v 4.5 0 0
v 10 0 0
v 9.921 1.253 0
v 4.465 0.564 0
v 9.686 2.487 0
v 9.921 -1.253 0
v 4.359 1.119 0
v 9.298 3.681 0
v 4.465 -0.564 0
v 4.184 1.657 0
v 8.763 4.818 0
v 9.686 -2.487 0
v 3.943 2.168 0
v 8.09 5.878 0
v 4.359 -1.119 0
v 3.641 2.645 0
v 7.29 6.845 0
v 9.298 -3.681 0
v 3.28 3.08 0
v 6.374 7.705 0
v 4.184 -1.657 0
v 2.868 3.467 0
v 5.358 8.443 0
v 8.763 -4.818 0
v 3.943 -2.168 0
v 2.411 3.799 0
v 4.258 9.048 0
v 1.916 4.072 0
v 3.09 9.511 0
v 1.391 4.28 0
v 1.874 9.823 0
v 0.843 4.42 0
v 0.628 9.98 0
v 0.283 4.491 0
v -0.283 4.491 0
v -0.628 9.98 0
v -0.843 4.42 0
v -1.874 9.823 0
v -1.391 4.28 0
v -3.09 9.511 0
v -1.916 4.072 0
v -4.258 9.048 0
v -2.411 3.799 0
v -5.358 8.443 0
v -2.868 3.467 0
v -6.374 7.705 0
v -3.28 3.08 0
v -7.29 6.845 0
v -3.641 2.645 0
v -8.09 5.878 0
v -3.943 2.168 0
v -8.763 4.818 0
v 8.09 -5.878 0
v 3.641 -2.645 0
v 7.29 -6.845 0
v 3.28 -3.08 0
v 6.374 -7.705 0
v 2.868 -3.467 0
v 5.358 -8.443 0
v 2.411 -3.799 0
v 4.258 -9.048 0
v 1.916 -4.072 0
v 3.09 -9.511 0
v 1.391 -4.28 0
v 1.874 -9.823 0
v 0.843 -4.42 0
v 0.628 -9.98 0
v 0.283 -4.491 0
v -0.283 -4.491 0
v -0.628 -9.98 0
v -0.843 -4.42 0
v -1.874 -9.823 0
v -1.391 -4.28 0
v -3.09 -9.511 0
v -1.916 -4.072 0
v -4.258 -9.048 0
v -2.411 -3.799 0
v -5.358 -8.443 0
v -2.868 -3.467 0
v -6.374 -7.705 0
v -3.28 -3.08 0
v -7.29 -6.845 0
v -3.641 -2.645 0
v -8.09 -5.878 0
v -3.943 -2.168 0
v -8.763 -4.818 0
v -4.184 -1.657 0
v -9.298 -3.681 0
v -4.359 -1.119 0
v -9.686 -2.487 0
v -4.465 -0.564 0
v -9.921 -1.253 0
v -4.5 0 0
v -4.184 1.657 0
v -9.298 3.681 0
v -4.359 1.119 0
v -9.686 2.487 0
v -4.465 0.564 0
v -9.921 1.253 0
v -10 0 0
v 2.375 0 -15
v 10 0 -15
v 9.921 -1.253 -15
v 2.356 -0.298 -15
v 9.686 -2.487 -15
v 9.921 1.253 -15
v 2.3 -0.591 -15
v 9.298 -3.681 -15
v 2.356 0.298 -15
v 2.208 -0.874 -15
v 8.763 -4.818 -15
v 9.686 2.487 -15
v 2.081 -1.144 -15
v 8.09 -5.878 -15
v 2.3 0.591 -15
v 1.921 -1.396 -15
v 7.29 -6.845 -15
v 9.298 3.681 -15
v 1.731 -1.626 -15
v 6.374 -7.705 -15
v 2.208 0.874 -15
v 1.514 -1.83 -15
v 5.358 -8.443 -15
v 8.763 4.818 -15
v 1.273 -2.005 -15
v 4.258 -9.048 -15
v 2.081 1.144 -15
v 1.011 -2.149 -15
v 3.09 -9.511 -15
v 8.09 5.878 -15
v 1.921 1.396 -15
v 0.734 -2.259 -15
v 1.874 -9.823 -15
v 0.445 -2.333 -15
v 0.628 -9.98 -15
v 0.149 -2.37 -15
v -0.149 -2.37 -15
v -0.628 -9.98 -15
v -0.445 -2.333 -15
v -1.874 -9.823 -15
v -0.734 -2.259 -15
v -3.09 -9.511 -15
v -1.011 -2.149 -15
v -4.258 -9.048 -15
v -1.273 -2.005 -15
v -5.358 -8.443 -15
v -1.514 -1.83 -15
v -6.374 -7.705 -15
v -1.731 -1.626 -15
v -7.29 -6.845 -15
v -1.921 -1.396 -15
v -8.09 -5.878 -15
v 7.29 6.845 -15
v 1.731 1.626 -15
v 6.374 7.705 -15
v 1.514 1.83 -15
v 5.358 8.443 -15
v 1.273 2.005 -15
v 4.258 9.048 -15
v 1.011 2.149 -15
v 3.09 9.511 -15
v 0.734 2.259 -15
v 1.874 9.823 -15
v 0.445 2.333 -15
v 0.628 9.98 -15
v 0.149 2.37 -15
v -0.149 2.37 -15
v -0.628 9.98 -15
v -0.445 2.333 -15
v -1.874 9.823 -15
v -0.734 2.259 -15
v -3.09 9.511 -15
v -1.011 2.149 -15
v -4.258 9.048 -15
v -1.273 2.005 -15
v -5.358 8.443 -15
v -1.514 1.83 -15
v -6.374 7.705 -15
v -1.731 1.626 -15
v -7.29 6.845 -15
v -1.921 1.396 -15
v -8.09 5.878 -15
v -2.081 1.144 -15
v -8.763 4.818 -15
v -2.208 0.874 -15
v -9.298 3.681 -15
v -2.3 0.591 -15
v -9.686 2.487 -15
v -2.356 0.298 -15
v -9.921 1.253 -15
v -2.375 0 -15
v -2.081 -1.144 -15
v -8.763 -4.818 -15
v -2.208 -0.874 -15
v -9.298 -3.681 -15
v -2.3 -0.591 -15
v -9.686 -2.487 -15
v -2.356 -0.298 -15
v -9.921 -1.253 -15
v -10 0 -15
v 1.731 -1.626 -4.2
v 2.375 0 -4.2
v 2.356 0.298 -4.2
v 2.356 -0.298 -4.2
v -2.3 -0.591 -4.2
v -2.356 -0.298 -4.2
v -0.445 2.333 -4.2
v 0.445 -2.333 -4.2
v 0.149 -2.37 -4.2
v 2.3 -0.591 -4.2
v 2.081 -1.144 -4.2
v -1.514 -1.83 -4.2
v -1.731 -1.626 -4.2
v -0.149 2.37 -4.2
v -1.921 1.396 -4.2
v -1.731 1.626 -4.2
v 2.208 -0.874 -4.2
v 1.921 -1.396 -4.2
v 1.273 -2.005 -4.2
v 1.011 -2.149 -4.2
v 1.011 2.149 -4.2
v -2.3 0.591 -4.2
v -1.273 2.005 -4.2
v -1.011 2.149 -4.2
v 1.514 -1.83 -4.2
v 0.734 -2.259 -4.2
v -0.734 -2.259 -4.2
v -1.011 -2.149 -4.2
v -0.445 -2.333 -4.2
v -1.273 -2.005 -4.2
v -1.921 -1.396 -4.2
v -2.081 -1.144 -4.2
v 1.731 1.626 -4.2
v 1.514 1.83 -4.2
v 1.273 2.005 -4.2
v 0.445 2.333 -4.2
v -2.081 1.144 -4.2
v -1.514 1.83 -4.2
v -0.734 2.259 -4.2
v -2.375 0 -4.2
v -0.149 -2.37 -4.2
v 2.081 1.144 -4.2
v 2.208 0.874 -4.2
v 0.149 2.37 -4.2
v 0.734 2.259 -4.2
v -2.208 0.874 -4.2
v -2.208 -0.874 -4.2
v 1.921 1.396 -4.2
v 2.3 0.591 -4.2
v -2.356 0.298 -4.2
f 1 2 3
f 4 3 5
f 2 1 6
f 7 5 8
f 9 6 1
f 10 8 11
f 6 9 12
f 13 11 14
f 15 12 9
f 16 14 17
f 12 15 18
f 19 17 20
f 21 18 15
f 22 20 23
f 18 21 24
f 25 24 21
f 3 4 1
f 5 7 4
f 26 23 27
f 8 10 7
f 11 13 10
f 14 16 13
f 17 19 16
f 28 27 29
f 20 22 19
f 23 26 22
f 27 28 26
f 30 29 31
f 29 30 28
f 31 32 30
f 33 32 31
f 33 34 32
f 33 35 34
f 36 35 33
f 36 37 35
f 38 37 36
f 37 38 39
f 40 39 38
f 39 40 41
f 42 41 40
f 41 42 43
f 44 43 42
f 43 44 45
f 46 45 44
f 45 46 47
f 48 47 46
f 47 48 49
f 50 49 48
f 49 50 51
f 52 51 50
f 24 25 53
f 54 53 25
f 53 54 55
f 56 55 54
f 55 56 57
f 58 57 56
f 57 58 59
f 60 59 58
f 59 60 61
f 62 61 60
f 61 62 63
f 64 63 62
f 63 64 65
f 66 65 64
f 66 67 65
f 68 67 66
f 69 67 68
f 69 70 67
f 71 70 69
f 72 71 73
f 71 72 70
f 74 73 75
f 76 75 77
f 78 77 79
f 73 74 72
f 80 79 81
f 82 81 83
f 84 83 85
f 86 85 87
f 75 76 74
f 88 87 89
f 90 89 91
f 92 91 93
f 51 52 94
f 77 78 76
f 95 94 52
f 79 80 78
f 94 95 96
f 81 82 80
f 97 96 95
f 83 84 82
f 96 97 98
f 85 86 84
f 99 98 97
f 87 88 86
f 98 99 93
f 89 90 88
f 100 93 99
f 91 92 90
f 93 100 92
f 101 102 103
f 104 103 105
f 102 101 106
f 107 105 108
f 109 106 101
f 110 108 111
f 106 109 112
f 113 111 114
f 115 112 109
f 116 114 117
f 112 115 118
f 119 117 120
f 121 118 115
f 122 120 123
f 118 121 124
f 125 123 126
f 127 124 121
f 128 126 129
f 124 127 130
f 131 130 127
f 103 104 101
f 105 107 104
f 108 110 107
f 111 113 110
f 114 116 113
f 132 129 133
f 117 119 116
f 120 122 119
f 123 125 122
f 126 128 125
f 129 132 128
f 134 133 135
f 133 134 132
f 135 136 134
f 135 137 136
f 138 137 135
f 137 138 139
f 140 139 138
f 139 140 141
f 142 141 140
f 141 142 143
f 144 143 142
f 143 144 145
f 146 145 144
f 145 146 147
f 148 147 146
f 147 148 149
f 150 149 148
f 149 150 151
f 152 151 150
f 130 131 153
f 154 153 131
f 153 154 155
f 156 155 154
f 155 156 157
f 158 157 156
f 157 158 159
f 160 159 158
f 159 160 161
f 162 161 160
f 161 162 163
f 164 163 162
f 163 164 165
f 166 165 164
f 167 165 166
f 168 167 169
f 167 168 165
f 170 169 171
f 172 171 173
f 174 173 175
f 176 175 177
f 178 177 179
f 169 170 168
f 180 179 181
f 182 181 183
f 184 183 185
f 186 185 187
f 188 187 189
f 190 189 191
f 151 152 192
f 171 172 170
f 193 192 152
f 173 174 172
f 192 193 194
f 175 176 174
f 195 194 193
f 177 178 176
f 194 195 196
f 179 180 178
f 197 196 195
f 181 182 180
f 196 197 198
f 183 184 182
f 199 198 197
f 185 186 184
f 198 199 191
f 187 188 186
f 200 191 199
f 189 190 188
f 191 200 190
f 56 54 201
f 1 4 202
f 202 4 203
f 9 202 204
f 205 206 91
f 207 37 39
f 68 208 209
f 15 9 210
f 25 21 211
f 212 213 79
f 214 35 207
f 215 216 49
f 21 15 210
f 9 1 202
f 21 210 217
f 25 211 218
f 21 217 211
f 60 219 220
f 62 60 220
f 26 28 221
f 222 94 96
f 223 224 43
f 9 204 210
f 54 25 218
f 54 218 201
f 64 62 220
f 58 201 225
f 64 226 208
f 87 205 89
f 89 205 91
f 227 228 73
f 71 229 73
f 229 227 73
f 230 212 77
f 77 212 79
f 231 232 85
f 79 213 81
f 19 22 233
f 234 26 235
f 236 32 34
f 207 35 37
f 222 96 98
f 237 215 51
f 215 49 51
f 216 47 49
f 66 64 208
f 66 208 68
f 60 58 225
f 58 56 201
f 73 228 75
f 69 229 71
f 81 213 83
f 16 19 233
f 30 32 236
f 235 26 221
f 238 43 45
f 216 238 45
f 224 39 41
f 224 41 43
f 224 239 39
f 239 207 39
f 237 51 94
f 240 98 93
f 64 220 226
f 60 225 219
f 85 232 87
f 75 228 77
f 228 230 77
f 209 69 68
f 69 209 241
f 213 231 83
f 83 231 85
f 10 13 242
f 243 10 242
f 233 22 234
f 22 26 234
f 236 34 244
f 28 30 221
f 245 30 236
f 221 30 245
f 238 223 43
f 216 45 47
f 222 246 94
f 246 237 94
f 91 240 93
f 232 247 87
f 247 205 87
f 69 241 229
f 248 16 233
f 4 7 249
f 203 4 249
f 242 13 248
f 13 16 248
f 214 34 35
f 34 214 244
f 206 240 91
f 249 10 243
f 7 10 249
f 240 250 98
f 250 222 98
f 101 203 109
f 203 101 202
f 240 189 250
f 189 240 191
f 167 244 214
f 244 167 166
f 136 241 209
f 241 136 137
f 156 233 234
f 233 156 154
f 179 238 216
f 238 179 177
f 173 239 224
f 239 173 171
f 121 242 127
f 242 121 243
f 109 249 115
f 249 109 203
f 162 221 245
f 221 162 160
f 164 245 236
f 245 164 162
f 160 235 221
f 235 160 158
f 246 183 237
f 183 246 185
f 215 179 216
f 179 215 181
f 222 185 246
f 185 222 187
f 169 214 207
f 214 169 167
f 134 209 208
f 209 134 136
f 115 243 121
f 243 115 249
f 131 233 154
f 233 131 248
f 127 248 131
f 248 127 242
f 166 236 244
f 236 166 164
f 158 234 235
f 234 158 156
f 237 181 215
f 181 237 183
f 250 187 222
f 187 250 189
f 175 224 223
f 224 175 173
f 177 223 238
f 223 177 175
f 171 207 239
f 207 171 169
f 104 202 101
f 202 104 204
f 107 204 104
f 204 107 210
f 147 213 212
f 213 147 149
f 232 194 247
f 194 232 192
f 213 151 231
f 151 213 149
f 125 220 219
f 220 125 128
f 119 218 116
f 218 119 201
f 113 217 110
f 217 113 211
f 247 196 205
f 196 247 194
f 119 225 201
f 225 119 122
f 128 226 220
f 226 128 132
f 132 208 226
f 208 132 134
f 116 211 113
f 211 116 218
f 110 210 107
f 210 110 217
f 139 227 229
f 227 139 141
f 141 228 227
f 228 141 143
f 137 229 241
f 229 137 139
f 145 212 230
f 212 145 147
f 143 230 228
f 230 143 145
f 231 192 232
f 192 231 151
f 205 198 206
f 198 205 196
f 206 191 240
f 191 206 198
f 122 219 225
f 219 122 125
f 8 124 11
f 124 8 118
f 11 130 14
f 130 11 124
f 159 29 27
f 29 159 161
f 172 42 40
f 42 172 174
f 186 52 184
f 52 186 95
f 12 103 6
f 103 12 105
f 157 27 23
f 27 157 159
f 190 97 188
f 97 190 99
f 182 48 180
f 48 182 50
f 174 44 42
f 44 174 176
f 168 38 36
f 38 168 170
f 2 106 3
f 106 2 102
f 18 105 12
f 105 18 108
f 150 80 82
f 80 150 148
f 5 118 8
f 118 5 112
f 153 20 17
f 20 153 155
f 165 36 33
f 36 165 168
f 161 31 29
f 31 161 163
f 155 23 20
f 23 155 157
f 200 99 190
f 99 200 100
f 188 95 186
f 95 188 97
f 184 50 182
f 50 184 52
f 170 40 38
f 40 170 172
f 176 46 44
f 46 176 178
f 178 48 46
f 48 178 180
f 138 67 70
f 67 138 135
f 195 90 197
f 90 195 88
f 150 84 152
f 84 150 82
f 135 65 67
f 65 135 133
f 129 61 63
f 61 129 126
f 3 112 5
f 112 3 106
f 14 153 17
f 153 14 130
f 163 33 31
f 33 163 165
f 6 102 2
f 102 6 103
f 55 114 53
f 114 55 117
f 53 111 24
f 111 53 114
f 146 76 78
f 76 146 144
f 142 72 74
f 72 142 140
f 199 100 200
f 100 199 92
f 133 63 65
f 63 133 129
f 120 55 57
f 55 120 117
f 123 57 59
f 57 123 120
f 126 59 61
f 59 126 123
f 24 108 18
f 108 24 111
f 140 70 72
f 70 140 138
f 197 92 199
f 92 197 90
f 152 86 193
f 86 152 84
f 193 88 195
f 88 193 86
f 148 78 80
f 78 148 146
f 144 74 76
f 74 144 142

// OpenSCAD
$fn = 50;


difference() {
	union() {
		translate(v = [0, 0, -15.0000000000]) {
			cylinder(h = 15, r = 10.0000000000);
		}
		cylinder(h = 0, r = 19.0000000000);
	}
	union() {
		translate(v = [0, 0, 0]) {
			rotate(a = [0, 0, 0]) {
				difference() {
					union() {
						#translate(v = [0, 0, -15.0000000000]) {
							cylinder(h = 15, r = 2.2500000000);
						}
						#translate(v = [0, 0, -4.2000000000]) {
							cylinder(h = 4.2000000000, r1 = 2.3750000000, r2 = 4.5000000000);
						}
						#translate(v = [0, 0, -15.0000000000]) {
							cylinder(h = 15, r = 2.3750000000);
						}
						#translate(v = [0, 0, -15.0000000000]) {
							cylinder(h = 15, r = 2.2500000000);
						}
					}
					union();
				}
			}
		}
	}
}
